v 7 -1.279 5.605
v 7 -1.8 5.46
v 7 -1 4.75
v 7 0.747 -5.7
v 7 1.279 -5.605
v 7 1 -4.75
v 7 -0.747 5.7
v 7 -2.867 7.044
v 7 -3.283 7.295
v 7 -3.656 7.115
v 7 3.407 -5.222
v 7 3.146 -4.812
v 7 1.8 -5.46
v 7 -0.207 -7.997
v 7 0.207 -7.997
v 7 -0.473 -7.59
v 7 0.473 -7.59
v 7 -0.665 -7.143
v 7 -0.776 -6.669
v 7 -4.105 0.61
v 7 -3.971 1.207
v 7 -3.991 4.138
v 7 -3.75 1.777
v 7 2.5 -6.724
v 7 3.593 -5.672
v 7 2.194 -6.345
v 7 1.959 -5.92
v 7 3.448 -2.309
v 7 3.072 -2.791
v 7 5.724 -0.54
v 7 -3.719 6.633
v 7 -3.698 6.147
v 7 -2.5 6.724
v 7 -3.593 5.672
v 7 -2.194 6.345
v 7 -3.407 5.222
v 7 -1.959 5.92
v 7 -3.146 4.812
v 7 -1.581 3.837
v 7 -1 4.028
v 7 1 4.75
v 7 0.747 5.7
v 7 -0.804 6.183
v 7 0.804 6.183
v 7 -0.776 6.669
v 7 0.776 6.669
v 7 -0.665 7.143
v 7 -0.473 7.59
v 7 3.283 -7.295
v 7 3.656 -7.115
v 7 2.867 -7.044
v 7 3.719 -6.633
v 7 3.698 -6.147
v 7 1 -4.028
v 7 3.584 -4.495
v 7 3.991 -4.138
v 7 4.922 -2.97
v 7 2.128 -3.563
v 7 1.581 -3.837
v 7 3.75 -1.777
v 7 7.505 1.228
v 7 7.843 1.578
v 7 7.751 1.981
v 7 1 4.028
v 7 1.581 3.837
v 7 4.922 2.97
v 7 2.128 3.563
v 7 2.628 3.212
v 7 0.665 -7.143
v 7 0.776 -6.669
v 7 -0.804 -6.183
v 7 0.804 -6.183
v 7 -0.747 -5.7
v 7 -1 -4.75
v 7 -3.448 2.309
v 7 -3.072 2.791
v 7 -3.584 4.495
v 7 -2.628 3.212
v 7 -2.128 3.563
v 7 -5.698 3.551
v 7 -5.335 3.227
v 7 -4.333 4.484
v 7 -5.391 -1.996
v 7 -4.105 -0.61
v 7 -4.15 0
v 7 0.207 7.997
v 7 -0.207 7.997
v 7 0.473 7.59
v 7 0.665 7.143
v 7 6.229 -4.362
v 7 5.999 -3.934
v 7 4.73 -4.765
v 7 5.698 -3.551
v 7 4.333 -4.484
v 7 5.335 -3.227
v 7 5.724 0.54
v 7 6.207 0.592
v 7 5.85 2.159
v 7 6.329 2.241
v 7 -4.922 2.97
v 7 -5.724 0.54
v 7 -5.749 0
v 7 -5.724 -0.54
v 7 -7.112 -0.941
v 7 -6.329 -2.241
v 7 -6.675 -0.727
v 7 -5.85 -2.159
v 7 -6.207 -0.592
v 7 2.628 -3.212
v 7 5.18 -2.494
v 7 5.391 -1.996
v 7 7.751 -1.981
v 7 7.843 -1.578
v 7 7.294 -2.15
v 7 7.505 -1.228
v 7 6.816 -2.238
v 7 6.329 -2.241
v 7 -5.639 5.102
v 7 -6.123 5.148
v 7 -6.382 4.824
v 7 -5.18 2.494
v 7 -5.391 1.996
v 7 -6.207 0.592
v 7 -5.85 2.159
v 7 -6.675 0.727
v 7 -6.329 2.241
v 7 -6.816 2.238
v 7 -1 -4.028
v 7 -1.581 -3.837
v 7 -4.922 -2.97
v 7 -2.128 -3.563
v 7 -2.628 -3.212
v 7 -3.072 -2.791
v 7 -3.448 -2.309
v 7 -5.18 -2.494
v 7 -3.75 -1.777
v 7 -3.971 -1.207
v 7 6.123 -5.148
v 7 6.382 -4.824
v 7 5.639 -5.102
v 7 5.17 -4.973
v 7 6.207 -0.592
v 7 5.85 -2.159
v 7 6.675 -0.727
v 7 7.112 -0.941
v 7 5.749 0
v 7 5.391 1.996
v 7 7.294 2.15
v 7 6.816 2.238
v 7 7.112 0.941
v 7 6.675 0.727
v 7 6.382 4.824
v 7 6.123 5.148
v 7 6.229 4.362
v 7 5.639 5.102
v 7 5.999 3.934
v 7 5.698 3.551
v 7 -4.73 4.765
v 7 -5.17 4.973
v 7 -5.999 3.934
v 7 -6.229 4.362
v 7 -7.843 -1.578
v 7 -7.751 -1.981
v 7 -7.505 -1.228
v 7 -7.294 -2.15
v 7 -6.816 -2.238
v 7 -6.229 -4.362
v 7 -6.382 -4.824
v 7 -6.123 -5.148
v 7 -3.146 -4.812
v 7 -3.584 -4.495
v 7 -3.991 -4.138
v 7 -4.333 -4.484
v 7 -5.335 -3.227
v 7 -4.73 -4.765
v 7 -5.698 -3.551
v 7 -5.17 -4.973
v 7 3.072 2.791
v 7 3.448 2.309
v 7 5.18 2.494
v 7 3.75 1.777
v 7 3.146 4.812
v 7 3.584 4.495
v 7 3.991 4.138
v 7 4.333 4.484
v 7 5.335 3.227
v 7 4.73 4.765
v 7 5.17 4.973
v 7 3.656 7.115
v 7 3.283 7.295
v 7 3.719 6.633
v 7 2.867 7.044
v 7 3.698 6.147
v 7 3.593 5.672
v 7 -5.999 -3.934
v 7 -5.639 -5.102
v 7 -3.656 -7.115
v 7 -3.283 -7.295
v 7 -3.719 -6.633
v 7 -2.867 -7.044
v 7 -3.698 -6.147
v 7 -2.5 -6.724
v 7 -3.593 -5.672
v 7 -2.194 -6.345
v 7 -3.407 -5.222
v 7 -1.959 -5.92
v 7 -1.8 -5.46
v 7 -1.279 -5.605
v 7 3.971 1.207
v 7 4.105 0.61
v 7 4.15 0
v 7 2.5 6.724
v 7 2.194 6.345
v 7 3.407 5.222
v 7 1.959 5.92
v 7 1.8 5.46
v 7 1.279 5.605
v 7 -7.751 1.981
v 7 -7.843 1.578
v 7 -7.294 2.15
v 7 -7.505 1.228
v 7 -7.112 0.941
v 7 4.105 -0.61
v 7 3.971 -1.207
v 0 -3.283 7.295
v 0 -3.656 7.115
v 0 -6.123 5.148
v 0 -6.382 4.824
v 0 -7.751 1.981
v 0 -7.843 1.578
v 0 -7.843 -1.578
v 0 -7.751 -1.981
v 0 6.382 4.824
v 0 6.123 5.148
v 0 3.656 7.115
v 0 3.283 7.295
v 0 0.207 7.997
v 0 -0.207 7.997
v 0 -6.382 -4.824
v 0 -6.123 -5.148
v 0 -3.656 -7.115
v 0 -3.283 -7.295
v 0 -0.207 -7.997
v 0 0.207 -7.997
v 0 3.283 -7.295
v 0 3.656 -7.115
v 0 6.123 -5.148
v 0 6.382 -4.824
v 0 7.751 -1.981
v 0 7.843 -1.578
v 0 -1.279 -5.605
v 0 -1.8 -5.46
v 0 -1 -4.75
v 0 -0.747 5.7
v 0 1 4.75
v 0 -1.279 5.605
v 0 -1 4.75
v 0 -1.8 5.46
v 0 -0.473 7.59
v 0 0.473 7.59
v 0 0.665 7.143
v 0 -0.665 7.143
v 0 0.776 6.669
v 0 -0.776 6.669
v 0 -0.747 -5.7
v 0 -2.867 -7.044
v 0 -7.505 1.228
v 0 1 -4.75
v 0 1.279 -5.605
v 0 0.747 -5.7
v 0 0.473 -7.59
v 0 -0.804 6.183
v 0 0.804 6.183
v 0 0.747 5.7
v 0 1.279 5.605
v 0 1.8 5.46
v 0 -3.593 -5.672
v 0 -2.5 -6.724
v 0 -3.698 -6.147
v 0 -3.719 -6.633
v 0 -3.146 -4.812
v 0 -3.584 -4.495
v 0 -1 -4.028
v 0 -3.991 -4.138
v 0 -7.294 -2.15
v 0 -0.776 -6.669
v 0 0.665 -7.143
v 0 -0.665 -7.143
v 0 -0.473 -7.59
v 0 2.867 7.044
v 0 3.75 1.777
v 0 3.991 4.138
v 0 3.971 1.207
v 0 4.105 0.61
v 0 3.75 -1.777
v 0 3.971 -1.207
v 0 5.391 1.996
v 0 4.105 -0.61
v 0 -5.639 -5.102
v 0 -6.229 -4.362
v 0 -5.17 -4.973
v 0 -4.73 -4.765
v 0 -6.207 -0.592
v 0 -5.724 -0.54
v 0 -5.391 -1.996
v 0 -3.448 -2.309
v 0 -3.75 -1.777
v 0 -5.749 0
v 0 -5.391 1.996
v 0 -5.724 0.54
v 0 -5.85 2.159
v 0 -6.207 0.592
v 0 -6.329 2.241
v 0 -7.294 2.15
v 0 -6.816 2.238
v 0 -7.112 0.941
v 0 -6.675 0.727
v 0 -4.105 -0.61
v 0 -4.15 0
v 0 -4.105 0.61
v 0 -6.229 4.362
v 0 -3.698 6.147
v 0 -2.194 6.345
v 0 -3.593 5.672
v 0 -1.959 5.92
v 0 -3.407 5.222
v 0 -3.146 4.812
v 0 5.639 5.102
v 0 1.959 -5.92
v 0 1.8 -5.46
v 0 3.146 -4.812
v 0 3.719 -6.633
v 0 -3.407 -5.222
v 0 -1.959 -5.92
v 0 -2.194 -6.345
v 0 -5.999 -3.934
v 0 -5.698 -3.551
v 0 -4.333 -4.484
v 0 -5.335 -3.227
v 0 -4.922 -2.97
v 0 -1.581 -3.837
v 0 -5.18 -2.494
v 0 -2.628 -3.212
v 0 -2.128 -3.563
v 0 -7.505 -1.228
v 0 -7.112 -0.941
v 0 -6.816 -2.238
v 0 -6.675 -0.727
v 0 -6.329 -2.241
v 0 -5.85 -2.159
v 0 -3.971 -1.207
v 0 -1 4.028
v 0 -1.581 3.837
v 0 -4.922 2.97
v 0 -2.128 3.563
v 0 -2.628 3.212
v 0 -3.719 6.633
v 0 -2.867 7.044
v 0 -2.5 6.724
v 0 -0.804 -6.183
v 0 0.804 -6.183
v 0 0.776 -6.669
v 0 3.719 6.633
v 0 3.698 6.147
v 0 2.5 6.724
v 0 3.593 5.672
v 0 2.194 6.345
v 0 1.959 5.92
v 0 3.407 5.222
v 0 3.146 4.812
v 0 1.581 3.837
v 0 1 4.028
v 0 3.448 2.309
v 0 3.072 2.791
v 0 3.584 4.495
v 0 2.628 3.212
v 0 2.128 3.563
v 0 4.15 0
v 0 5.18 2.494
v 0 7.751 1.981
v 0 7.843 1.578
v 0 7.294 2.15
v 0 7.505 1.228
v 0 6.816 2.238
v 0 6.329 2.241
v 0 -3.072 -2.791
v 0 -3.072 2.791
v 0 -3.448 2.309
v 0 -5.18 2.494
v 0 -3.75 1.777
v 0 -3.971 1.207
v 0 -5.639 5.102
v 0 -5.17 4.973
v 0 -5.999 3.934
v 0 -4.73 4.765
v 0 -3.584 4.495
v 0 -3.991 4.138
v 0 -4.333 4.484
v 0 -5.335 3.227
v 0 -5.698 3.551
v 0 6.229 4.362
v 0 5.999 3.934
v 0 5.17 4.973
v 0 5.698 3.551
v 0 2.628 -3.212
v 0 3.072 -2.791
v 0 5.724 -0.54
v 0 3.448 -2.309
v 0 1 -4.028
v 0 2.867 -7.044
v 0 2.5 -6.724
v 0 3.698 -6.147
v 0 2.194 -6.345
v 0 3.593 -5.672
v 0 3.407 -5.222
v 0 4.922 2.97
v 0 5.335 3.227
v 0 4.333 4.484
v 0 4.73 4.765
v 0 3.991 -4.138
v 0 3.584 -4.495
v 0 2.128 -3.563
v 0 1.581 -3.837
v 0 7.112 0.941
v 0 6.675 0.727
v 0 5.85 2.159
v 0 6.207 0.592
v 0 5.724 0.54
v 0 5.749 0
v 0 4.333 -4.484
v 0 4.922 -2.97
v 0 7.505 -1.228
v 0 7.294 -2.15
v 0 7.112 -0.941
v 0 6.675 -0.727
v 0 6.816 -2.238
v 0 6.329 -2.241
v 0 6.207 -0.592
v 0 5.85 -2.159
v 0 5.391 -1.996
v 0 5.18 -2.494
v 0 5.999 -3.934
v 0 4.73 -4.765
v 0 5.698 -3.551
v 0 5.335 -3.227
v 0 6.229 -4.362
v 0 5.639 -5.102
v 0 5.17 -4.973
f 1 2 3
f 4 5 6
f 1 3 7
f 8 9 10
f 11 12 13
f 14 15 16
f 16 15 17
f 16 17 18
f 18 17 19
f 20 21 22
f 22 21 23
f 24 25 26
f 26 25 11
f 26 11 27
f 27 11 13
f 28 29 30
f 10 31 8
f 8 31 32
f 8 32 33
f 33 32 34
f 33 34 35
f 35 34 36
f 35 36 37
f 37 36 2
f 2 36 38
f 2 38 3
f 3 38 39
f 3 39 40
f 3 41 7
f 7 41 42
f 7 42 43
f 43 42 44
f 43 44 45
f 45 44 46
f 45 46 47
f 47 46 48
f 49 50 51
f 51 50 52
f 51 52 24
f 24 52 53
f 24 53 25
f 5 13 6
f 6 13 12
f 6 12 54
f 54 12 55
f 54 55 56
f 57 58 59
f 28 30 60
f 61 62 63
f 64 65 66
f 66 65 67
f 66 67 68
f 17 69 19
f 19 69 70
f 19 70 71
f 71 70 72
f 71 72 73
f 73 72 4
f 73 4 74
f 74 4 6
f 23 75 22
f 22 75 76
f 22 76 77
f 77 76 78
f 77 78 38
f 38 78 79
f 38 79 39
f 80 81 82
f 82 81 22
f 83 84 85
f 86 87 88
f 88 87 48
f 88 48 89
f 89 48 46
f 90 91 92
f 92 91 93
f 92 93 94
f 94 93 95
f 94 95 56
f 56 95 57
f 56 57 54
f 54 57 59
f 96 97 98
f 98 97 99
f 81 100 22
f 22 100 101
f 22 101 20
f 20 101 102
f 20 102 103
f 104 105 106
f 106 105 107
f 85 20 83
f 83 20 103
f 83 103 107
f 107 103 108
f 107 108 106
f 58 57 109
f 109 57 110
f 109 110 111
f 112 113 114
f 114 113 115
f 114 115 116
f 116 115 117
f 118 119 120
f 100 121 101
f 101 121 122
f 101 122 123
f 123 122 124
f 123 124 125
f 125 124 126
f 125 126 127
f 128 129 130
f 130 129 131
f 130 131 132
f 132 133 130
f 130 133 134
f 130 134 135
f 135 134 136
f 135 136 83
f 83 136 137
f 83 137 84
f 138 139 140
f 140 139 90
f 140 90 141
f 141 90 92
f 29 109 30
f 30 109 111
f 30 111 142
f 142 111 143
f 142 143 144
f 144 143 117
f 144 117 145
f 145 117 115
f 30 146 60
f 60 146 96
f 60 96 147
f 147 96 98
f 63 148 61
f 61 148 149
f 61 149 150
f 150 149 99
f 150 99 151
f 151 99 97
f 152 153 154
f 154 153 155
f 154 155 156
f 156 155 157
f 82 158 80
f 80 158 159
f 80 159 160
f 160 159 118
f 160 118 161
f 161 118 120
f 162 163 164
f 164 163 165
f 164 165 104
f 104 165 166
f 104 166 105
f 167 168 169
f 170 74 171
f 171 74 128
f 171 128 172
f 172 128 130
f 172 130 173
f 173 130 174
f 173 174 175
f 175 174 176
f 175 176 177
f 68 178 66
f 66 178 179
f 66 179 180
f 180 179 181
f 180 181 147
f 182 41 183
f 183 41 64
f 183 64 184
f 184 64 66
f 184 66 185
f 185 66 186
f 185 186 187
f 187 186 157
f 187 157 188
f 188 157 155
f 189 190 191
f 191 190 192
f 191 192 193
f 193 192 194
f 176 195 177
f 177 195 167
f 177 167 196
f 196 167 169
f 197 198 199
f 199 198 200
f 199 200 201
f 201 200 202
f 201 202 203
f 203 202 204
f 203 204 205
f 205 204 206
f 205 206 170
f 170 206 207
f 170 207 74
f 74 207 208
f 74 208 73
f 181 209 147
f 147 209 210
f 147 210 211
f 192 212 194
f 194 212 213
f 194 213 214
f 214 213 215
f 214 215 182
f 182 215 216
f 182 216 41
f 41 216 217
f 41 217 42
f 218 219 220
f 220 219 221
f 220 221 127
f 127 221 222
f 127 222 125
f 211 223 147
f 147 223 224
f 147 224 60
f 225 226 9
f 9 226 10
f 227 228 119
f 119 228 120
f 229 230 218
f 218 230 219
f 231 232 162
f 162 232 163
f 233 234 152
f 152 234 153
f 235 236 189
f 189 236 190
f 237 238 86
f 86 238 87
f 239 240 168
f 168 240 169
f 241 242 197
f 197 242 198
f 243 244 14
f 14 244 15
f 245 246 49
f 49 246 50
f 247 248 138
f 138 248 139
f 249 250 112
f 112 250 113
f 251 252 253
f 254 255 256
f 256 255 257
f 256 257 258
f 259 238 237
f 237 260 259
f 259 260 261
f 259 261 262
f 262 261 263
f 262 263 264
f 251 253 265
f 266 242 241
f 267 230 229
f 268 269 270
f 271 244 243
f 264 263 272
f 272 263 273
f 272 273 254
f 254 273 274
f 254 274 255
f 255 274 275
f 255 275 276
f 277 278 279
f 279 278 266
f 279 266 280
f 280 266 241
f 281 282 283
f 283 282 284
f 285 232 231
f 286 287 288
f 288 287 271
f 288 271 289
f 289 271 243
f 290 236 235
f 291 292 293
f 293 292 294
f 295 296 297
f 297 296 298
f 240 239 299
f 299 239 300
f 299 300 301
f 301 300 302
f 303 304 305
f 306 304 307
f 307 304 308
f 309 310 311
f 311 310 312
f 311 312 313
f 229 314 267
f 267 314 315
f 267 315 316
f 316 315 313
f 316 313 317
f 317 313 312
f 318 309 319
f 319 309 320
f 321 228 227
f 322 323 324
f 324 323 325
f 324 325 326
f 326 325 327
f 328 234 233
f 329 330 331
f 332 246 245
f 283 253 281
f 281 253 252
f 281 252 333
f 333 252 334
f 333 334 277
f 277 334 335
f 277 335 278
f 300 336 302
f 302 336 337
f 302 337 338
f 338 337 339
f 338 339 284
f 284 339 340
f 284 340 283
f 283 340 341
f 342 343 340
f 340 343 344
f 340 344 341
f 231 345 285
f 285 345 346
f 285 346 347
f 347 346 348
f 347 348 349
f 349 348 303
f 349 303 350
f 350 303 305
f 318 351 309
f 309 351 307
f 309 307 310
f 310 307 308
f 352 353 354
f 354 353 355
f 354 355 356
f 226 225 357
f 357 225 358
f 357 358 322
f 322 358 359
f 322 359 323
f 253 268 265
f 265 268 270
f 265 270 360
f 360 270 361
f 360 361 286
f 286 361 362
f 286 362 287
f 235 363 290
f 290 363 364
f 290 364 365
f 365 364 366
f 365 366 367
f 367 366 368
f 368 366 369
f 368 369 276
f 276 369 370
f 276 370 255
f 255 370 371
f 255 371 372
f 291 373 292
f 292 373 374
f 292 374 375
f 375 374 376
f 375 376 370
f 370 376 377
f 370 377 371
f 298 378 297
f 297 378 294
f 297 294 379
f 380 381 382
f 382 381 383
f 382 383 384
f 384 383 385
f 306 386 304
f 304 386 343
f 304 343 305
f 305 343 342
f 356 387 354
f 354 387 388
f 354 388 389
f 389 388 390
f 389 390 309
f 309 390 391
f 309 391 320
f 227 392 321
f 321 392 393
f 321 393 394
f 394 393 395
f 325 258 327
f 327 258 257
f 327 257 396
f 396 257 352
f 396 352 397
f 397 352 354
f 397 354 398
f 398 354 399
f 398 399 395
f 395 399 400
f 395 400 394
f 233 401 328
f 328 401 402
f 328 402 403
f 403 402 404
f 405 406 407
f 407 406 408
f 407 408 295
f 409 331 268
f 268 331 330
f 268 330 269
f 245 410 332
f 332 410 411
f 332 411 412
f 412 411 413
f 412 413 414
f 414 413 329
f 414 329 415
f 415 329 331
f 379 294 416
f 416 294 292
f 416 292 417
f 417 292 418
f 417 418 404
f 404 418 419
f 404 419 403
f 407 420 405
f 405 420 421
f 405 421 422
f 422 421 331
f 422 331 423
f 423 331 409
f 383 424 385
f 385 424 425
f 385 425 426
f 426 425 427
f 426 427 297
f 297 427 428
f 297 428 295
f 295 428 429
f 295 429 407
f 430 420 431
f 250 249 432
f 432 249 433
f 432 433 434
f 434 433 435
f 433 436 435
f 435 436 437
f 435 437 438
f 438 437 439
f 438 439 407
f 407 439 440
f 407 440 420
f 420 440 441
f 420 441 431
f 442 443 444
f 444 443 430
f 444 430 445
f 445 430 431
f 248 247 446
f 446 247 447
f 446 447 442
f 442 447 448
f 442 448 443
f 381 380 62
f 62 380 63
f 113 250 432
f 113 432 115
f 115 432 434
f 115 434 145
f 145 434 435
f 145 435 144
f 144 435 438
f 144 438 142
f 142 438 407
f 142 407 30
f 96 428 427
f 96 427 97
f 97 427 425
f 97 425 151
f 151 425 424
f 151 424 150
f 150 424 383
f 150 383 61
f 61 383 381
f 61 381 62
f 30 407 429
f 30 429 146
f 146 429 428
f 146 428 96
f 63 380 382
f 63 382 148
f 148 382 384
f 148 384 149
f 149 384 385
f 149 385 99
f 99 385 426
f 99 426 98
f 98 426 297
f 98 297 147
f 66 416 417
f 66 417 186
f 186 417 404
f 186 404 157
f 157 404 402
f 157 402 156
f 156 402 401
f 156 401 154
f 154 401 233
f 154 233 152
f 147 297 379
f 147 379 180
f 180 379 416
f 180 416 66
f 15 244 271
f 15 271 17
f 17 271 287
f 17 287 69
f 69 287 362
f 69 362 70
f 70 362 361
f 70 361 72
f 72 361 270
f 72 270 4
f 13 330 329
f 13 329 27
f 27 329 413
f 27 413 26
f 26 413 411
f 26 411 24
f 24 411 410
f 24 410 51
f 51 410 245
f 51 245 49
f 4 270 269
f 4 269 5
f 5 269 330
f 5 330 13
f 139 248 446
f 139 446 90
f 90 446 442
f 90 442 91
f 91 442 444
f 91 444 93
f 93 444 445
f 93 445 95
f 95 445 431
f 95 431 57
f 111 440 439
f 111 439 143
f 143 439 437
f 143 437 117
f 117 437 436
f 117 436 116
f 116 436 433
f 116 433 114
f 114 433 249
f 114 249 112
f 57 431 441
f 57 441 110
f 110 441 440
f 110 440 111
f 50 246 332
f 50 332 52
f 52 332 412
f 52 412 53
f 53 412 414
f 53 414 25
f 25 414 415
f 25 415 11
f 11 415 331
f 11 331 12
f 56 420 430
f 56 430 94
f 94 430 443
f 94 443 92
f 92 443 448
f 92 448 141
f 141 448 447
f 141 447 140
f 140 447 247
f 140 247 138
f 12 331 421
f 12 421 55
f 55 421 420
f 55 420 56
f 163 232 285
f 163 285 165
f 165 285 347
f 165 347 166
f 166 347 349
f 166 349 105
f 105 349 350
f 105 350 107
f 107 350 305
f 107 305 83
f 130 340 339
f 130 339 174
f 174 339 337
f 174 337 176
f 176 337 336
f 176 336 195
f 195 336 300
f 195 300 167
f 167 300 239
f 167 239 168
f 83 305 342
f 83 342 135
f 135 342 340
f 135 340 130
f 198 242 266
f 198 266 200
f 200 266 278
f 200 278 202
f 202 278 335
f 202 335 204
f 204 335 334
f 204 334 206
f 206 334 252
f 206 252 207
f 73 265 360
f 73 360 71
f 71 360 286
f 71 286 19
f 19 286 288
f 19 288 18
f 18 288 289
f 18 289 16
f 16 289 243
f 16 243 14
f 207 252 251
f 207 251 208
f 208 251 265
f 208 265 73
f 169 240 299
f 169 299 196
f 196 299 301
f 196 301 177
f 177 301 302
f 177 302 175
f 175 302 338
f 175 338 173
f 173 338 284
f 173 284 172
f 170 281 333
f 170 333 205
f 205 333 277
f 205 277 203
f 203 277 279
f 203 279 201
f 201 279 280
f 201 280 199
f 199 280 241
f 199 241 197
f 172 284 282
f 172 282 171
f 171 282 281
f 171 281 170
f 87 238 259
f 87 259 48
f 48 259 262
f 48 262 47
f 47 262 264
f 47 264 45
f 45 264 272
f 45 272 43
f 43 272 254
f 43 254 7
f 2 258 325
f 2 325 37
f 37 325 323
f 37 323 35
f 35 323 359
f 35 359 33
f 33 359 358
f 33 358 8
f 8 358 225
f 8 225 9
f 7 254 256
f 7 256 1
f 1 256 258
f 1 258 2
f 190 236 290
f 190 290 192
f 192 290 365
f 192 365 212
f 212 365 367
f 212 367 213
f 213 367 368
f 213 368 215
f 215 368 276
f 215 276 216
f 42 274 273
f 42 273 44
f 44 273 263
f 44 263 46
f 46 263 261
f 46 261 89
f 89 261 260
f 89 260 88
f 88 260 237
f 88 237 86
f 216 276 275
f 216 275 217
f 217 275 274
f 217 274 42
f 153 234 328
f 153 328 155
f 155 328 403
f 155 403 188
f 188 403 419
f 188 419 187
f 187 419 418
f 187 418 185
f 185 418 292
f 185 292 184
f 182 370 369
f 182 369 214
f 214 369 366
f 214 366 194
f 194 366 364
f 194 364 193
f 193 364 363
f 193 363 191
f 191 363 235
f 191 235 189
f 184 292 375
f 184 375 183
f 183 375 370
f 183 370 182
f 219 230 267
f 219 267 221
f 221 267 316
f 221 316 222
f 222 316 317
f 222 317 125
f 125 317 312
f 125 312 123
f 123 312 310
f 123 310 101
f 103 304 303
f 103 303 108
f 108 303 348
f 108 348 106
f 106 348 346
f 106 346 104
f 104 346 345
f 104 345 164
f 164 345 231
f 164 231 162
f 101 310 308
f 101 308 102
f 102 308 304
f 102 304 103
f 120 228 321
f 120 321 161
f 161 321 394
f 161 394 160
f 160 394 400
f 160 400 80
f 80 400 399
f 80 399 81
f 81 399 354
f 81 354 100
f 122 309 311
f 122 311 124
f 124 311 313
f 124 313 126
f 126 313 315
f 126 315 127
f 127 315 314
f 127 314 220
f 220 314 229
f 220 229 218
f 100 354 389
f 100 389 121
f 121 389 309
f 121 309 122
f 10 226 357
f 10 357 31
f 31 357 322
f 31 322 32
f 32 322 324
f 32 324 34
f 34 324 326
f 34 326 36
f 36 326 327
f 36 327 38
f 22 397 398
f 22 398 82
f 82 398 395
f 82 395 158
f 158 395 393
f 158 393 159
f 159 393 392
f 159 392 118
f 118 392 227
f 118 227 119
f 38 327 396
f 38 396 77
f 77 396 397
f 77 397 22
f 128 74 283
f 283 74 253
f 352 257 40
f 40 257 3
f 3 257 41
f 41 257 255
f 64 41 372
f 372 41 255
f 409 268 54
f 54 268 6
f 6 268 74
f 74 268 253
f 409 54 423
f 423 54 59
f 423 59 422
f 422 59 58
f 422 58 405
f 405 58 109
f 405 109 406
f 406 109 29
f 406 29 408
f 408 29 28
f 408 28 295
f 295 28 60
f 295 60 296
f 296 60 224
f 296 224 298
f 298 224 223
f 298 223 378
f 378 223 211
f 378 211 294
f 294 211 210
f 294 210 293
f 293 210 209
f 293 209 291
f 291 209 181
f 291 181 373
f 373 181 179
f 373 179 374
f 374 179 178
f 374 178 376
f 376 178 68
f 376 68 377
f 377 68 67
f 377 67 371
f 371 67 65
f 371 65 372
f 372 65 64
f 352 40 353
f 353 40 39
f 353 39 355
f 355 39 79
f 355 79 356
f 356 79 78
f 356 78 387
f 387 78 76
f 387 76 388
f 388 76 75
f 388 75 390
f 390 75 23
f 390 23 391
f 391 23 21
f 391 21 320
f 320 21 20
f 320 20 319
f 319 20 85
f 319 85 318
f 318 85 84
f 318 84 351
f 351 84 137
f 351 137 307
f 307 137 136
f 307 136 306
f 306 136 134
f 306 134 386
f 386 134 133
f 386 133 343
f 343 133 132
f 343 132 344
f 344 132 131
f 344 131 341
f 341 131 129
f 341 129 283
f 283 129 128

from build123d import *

# Parameters (mm, degrees)
BASPROSKE_W        = 7
BASPROSKE_H        = 8
TOOTHCUT_DEPTH     = 14.304134696
TEETHCUTS_COUNT    = 14
TEETHCUTS_ANGLE    = 334.285714286
BORSKE_R           = 2.5
BORE_DEPTH         = 50.0000508
CUT_EXTRUDE2_DEPTH = 10
SKETCH2_R          = 4.15
CUT_EXTRUDE3_DEPTH = 14.210255756


with BuildPart() as part:
    # BasProSke → Base-Revolve (revolve)
    with BuildSketch(Plane(origin=(0, 0, 0), x_dir=(1, 0, 0), z_dir=(0, 1, 0)), mode=Mode.PRIVATE) as base_revolve_sk:
        with Locations((3.5, 4)):
            Rectangle(BASPROSKE_W, BASPROSKE_H)
    revolve(base_revolve_sk.sketch.rotate(Axis((-10, 0, 0), (1, 0, 0)), 180), axis=Axis((-10, 0, 0), (1, 0, 0)))

    # TooCutSke → ToothCut (cut, through all)
    with BuildSketch(Plane(origin=(0, 0, 0), x_dir=(0, 0, -1), z_dir=(1, 0, 0))):
        with BuildLine():
            ThreePointArc((0.540393256, 5.723545765), (0, 5.749), (-0.540393256, 5.723545765))
            ThreePointArc((-0.540393256, 5.723545765), (-0.832220085, 6.912663993), (-1.603550271, 7.863566092))
            ThreePointArc((-1.603550271, 7.863566092), (0, 8.0254), (1.603550271, 7.863566092))
            ThreePointArc((1.603550271, 7.863566092), (0.832220085, 6.912663993), (0.540393256, 5.723545765))
        make_face()
    toothcut = extrude(amount=TOOTHCUT_DEPTH, mode=Mode.SUBTRACT)

    # TeethCuts: ToothCut ×14 about axis
    teethcuts_axis = Axis((-10, 0, 0), (1, 0, 0))
    for i in range(1, TEETHCUTS_COUNT):
        add(toothcut.rotate(teethcuts_axis, i * TEETHCUTS_ANGLE / (TEETHCUTS_COUNT - 1)), mode=Mode.SUBTRACT)

    # BorSke → Bore (cut, symmetric)
    with BuildSketch(Plane(origin=(0, 0, 0), x_dir=(0, 0, -1), z_dir=(1, 0, 0))):
        with Locations(Location((0, 0, 0), (0, 0, 180))):
            Circle(BORSKE_R)
    extrude(amount=BORE_DEPTH, both=True, mode=Mode.SUBTRACT)

    # Sketch1 → Cut-Extrude2 (cut)
    with BuildSketch(Plane(origin=(7, 0, 0), x_dir=(0, 0, -1), z_dir=(1, 0, 0))):
        with BuildLine():
            Line((3.872983346, 1), (4.75, 1))
            Line((4.75, 1), (4.75, -1))
            Line((4.75, -1), (3.872983346, -1))
            ThreePointArc((3.872983346, -1), (0, -4), (-3.872983346, -1))
            Line((-3.872983346, -1), (-4.75, -1))
            Line((-4.75, -1), (-4.75, 1))
            Line((-4.75, 1), (-3.872983346, 1))
            ThreePointArc((-3.872983346, 1), (0, 4), (3.872983346, 1))
        make_face()
    extrude(amount=-CUT_EXTRUDE2_DEPTH, mode=Mode.SUBTRACT)

    # Sketch2 → Cut-Extrude3 (cut, through all)
    with BuildSketch(Plane(origin=(7, 0, 0), x_dir=(0, 0, -1), z_dir=(1, 0, 0))):
        Circle(SKETCH2_R)
    extrude(amount=-CUT_EXTRUDE3_DEPTH, mode=Mode.SUBTRACT)


solid = part.part
